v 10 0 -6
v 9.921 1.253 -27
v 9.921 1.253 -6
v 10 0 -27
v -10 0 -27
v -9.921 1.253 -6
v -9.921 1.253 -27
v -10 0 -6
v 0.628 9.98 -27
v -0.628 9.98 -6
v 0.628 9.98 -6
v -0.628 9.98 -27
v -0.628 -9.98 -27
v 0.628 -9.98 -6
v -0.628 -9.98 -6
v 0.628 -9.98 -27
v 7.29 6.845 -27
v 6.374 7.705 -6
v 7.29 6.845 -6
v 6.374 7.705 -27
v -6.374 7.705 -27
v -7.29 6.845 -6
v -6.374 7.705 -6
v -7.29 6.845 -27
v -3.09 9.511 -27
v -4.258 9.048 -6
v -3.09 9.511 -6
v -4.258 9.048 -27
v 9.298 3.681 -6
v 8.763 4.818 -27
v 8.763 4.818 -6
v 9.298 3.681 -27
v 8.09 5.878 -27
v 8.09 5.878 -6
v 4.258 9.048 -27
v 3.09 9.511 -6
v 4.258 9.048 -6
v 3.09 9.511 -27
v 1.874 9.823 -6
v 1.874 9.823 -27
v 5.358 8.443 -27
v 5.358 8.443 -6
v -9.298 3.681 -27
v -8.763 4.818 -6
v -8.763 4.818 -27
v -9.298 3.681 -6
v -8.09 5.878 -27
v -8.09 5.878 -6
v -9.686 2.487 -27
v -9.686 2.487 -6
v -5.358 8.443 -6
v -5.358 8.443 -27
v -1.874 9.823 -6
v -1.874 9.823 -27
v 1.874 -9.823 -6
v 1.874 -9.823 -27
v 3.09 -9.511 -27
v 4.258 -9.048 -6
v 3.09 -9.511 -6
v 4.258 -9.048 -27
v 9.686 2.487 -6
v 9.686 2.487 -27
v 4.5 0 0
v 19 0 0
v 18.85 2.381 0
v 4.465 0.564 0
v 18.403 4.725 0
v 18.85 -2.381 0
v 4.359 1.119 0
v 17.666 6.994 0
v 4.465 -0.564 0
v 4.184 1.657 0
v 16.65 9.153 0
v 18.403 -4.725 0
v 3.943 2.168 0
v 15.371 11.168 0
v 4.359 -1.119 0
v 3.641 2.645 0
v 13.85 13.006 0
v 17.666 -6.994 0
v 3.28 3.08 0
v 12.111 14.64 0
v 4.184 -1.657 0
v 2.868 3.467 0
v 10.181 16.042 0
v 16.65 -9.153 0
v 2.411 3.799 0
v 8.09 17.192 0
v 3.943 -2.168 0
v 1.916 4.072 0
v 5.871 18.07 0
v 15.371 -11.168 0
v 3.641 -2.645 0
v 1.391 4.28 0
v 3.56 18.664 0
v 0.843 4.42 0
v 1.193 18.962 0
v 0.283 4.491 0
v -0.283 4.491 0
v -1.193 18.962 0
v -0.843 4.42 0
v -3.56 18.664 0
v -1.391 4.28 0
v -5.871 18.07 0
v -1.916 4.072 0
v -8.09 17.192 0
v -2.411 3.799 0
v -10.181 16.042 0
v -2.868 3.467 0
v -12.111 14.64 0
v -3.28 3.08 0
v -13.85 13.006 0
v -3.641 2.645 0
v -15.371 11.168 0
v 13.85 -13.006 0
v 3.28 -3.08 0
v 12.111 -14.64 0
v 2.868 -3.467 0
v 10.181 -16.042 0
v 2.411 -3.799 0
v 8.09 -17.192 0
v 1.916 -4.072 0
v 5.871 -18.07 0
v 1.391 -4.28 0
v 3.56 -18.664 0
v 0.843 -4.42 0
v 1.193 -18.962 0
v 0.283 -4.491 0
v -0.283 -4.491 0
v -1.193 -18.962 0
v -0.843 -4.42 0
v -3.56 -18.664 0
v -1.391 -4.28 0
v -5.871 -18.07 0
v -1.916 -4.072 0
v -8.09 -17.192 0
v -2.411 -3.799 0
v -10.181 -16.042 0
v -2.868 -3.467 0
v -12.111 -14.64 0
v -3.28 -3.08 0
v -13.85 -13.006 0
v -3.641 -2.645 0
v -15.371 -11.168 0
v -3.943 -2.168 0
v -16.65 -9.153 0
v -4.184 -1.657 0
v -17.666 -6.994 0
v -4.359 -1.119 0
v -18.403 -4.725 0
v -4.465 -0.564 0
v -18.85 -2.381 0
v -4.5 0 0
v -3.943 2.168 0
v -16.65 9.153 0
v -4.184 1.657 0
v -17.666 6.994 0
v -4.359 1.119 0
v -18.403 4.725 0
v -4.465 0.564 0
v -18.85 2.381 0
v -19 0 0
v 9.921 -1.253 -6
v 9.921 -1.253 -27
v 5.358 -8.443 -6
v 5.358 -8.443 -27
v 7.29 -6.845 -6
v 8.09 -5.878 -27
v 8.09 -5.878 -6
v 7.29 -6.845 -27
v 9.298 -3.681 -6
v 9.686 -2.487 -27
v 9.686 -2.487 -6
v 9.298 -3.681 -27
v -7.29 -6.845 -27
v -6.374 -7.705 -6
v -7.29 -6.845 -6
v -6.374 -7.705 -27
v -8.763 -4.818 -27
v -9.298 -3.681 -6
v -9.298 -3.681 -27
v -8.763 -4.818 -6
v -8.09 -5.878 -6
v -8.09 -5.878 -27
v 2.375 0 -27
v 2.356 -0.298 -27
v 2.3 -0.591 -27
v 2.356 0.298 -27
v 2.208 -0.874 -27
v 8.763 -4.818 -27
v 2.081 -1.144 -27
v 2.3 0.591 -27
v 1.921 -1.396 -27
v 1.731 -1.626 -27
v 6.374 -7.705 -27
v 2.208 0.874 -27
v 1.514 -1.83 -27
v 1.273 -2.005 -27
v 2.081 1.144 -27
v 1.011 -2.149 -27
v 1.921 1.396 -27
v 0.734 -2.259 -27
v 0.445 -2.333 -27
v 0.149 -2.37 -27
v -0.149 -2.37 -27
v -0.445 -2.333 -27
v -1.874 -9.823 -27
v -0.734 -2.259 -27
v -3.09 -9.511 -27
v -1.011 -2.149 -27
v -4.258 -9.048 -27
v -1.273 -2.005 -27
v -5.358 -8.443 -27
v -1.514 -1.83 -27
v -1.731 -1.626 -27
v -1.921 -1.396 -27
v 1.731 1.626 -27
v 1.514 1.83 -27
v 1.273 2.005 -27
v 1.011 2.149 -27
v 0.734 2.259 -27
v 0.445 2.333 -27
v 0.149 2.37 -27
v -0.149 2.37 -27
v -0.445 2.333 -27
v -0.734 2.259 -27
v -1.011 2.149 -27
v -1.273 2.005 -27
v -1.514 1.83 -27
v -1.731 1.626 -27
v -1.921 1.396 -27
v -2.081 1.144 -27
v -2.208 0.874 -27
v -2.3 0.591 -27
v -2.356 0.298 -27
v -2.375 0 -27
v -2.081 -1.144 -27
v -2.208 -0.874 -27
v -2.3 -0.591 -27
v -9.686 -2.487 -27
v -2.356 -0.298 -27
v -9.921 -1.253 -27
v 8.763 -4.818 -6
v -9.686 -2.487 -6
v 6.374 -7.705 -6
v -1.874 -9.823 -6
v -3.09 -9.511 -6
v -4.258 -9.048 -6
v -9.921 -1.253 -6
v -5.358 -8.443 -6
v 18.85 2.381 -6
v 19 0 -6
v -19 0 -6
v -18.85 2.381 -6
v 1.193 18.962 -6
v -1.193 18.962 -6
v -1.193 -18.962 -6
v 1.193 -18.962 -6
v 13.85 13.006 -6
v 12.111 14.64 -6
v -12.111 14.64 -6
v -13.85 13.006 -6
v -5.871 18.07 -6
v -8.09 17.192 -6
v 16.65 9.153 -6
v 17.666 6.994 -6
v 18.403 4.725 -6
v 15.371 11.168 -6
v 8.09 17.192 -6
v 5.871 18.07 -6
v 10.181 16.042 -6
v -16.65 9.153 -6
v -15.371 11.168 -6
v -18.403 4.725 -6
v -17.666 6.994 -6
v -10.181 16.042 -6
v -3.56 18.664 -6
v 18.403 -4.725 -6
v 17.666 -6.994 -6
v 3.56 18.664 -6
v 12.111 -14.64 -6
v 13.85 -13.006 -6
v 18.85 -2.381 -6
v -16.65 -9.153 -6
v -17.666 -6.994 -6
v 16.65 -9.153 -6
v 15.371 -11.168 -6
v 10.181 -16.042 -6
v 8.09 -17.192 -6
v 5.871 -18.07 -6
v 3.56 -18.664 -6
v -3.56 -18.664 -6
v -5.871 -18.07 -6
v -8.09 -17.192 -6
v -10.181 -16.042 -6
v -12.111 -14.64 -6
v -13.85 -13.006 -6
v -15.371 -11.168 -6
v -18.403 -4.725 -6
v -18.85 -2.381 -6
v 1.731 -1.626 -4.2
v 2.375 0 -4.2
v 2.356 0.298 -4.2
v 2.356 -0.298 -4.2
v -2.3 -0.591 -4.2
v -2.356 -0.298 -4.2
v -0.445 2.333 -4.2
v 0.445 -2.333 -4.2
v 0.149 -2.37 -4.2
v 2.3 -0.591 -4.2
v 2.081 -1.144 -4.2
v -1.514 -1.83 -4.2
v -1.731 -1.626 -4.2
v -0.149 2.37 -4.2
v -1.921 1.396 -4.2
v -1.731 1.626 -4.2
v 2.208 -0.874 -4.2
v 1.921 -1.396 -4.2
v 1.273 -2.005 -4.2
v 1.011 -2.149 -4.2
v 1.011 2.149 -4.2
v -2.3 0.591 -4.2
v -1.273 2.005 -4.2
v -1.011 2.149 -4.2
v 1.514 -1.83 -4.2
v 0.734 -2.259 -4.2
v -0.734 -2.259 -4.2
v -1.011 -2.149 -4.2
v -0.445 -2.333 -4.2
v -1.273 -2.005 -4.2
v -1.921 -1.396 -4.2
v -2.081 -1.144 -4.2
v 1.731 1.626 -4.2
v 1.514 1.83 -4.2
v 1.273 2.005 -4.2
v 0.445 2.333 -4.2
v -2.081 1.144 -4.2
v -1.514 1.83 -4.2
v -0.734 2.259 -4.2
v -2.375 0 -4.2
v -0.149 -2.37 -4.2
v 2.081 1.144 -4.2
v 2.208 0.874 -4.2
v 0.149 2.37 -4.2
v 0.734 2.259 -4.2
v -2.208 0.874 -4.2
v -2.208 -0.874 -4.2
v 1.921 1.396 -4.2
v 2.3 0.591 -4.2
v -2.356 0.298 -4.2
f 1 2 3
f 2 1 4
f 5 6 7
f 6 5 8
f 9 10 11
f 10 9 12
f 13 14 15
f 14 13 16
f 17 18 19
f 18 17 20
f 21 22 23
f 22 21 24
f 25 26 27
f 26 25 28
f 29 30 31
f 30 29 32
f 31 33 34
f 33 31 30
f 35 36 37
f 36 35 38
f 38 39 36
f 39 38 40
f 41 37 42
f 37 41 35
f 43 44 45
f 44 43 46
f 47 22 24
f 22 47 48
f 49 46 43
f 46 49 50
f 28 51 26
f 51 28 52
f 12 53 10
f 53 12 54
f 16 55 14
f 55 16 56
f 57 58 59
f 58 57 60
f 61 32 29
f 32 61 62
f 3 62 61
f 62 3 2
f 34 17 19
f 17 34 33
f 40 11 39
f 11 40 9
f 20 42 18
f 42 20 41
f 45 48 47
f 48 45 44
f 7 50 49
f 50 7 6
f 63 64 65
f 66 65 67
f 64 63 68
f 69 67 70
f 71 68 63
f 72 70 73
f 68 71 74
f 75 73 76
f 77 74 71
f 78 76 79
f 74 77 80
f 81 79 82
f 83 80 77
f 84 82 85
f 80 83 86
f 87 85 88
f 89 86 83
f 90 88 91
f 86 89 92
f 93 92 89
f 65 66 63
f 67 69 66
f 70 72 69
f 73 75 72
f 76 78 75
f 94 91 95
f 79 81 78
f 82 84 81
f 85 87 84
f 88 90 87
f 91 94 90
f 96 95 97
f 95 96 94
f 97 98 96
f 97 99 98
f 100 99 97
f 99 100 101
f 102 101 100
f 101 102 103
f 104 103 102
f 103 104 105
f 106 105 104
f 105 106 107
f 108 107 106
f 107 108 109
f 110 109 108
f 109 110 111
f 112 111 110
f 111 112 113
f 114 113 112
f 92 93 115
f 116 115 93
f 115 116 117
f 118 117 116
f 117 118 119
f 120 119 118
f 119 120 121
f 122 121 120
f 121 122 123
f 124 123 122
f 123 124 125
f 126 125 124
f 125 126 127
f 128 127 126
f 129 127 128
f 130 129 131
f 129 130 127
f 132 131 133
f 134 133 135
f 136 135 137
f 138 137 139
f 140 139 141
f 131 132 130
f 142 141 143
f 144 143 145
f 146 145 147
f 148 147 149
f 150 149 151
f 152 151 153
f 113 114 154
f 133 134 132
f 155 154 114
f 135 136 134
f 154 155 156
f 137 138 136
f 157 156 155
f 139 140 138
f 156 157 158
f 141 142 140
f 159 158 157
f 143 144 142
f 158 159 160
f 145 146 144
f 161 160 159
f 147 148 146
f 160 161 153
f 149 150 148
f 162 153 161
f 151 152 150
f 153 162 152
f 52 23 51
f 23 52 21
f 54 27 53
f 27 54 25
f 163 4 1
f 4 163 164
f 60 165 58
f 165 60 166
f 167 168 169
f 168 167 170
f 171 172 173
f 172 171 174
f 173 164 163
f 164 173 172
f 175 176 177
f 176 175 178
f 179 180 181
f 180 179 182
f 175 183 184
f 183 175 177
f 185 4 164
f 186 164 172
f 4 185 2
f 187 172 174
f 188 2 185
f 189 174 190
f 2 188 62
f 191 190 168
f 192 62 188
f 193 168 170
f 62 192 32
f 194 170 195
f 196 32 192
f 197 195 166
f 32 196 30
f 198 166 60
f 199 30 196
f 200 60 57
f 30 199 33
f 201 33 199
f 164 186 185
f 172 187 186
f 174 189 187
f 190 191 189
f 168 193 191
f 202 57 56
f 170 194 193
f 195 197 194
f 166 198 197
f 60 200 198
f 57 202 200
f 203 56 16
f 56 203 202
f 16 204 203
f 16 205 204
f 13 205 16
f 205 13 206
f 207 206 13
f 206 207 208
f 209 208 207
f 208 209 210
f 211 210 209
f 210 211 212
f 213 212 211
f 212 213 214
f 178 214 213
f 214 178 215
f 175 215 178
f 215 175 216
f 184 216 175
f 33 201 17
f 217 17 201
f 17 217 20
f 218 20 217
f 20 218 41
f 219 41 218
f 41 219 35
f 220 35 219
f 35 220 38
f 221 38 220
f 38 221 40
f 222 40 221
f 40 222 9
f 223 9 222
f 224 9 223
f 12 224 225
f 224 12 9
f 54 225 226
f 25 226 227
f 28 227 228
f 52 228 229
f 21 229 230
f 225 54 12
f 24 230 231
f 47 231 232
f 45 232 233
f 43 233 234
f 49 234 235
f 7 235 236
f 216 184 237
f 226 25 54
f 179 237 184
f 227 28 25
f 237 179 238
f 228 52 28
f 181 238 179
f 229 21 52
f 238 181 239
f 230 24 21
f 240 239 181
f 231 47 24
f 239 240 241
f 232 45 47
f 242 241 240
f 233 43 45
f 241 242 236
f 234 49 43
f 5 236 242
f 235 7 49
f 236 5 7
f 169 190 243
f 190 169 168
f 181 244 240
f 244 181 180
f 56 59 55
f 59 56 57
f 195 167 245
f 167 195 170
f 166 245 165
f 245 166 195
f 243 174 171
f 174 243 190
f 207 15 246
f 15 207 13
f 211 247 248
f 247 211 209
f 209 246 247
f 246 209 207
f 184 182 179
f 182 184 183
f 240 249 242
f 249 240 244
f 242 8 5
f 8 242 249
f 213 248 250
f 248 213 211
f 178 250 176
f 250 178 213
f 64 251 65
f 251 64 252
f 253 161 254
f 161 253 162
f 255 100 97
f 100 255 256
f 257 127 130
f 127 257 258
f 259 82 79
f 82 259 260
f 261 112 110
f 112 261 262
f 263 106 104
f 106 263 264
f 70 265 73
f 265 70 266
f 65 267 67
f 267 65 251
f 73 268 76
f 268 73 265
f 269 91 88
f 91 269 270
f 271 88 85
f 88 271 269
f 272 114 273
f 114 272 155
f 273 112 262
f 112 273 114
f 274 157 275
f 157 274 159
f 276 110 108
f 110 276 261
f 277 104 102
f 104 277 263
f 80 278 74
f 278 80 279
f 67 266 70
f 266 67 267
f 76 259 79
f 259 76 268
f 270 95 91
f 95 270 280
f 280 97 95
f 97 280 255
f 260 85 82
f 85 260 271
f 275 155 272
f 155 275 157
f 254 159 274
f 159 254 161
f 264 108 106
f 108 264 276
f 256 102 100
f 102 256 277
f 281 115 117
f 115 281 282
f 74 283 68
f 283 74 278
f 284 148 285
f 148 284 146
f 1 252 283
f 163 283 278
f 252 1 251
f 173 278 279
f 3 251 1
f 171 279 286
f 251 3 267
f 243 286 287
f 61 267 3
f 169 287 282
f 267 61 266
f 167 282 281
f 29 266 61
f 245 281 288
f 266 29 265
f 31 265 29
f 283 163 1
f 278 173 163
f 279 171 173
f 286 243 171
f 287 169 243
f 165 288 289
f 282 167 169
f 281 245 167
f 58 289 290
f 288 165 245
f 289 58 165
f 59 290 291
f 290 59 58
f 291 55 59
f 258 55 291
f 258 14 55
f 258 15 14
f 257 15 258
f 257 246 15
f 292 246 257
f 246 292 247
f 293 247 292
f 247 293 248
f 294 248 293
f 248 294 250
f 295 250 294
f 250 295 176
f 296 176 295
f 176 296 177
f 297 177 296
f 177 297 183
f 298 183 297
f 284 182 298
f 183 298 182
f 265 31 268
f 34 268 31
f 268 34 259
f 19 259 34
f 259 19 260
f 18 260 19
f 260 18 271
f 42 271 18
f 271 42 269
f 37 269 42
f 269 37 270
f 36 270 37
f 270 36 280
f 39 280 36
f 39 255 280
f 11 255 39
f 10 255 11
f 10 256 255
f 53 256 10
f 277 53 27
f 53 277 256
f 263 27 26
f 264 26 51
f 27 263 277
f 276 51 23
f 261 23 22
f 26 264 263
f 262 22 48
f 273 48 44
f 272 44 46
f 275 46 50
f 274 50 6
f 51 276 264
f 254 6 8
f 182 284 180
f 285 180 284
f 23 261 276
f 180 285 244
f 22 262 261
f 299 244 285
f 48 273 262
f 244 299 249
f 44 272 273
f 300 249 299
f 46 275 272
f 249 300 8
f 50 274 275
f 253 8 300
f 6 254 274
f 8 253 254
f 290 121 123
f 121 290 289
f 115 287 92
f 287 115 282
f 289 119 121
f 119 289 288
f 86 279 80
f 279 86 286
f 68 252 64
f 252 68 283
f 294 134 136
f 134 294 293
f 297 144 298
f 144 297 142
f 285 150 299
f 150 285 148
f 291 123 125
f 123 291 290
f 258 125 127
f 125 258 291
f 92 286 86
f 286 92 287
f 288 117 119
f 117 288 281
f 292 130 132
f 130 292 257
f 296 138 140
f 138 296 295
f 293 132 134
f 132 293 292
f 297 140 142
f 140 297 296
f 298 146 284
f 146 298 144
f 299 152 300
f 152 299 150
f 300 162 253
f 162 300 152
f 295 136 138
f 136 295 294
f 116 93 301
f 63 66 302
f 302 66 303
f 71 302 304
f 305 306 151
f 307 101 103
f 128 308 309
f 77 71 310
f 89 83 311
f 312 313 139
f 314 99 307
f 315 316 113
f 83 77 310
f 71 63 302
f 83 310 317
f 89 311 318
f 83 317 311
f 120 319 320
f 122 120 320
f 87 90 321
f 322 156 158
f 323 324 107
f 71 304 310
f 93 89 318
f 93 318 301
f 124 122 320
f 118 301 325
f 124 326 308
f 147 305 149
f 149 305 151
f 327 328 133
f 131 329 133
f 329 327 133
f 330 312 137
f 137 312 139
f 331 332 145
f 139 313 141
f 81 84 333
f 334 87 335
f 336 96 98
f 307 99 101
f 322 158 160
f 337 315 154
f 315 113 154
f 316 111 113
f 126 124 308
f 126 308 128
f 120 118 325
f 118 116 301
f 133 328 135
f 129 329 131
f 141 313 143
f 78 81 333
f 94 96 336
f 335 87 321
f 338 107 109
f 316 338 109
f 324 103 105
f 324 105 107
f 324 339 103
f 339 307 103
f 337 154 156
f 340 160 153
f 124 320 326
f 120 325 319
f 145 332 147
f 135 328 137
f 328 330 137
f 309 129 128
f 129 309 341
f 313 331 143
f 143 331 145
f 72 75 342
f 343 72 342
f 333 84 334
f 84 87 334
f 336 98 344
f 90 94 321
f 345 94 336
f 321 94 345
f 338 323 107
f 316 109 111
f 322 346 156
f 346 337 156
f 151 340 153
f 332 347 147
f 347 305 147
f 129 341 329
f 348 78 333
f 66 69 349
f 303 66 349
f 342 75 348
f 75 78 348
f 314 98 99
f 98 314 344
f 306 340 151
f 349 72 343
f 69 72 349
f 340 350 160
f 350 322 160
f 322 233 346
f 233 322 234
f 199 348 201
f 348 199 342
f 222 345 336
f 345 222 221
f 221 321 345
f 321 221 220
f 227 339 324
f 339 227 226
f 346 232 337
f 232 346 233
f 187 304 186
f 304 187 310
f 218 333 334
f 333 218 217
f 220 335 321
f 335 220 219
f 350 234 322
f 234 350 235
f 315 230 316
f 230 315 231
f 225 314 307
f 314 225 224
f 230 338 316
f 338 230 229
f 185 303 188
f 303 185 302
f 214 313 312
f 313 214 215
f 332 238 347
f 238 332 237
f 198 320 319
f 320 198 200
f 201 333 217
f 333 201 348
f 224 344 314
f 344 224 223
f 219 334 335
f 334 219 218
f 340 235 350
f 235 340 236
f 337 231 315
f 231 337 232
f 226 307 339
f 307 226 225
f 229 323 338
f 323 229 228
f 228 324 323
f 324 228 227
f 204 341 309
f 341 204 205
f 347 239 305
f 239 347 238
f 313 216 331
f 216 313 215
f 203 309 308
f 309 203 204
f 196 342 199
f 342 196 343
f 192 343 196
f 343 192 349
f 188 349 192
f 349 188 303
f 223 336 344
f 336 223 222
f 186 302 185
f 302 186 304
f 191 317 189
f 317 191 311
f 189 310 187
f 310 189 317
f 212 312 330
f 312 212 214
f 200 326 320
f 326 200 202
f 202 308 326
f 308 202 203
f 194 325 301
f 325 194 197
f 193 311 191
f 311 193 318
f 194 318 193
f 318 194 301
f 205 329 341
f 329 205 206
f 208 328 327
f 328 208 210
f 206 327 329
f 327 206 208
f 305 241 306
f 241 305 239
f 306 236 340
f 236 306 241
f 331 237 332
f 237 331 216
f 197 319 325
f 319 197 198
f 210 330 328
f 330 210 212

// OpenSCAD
$fn = 50;


difference() {
	union() {
		translate(v = [0, 0, -27.0000000000]) {
			cylinder(h = 27, r = 10.0000000000);
		}
		translate(v = [0, 0, -6.0000000000]) {
			cylinder(h = 6, r = 19.0000000000);
		}
	}
	union() {
		translate(v = [0, 0, 0]) {
			rotate(a = [0, 0, 0]) {
				difference() {
					union() {
						#translate(v = [0, 0, -27.0000000000]) {
							cylinder(h = 27, r = 2.2500000000);
						}
						#translate(v = [0, 0, -4.2000000000]) {
							cylinder(h = 4.2000000000, r1 = 2.3750000000, r2 = 4.5000000000);
						}
						#translate(v = [0, 0, -27.0000000000]) {
							cylinder(h = 27, r = 2.3750000000);
						}
						#translate(v = [0, 0, -27.0000000000]) {
							cylinder(h = 27, r = 2.2500000000);
						}
					}
					union();
				}
			}
		}
	}
}
